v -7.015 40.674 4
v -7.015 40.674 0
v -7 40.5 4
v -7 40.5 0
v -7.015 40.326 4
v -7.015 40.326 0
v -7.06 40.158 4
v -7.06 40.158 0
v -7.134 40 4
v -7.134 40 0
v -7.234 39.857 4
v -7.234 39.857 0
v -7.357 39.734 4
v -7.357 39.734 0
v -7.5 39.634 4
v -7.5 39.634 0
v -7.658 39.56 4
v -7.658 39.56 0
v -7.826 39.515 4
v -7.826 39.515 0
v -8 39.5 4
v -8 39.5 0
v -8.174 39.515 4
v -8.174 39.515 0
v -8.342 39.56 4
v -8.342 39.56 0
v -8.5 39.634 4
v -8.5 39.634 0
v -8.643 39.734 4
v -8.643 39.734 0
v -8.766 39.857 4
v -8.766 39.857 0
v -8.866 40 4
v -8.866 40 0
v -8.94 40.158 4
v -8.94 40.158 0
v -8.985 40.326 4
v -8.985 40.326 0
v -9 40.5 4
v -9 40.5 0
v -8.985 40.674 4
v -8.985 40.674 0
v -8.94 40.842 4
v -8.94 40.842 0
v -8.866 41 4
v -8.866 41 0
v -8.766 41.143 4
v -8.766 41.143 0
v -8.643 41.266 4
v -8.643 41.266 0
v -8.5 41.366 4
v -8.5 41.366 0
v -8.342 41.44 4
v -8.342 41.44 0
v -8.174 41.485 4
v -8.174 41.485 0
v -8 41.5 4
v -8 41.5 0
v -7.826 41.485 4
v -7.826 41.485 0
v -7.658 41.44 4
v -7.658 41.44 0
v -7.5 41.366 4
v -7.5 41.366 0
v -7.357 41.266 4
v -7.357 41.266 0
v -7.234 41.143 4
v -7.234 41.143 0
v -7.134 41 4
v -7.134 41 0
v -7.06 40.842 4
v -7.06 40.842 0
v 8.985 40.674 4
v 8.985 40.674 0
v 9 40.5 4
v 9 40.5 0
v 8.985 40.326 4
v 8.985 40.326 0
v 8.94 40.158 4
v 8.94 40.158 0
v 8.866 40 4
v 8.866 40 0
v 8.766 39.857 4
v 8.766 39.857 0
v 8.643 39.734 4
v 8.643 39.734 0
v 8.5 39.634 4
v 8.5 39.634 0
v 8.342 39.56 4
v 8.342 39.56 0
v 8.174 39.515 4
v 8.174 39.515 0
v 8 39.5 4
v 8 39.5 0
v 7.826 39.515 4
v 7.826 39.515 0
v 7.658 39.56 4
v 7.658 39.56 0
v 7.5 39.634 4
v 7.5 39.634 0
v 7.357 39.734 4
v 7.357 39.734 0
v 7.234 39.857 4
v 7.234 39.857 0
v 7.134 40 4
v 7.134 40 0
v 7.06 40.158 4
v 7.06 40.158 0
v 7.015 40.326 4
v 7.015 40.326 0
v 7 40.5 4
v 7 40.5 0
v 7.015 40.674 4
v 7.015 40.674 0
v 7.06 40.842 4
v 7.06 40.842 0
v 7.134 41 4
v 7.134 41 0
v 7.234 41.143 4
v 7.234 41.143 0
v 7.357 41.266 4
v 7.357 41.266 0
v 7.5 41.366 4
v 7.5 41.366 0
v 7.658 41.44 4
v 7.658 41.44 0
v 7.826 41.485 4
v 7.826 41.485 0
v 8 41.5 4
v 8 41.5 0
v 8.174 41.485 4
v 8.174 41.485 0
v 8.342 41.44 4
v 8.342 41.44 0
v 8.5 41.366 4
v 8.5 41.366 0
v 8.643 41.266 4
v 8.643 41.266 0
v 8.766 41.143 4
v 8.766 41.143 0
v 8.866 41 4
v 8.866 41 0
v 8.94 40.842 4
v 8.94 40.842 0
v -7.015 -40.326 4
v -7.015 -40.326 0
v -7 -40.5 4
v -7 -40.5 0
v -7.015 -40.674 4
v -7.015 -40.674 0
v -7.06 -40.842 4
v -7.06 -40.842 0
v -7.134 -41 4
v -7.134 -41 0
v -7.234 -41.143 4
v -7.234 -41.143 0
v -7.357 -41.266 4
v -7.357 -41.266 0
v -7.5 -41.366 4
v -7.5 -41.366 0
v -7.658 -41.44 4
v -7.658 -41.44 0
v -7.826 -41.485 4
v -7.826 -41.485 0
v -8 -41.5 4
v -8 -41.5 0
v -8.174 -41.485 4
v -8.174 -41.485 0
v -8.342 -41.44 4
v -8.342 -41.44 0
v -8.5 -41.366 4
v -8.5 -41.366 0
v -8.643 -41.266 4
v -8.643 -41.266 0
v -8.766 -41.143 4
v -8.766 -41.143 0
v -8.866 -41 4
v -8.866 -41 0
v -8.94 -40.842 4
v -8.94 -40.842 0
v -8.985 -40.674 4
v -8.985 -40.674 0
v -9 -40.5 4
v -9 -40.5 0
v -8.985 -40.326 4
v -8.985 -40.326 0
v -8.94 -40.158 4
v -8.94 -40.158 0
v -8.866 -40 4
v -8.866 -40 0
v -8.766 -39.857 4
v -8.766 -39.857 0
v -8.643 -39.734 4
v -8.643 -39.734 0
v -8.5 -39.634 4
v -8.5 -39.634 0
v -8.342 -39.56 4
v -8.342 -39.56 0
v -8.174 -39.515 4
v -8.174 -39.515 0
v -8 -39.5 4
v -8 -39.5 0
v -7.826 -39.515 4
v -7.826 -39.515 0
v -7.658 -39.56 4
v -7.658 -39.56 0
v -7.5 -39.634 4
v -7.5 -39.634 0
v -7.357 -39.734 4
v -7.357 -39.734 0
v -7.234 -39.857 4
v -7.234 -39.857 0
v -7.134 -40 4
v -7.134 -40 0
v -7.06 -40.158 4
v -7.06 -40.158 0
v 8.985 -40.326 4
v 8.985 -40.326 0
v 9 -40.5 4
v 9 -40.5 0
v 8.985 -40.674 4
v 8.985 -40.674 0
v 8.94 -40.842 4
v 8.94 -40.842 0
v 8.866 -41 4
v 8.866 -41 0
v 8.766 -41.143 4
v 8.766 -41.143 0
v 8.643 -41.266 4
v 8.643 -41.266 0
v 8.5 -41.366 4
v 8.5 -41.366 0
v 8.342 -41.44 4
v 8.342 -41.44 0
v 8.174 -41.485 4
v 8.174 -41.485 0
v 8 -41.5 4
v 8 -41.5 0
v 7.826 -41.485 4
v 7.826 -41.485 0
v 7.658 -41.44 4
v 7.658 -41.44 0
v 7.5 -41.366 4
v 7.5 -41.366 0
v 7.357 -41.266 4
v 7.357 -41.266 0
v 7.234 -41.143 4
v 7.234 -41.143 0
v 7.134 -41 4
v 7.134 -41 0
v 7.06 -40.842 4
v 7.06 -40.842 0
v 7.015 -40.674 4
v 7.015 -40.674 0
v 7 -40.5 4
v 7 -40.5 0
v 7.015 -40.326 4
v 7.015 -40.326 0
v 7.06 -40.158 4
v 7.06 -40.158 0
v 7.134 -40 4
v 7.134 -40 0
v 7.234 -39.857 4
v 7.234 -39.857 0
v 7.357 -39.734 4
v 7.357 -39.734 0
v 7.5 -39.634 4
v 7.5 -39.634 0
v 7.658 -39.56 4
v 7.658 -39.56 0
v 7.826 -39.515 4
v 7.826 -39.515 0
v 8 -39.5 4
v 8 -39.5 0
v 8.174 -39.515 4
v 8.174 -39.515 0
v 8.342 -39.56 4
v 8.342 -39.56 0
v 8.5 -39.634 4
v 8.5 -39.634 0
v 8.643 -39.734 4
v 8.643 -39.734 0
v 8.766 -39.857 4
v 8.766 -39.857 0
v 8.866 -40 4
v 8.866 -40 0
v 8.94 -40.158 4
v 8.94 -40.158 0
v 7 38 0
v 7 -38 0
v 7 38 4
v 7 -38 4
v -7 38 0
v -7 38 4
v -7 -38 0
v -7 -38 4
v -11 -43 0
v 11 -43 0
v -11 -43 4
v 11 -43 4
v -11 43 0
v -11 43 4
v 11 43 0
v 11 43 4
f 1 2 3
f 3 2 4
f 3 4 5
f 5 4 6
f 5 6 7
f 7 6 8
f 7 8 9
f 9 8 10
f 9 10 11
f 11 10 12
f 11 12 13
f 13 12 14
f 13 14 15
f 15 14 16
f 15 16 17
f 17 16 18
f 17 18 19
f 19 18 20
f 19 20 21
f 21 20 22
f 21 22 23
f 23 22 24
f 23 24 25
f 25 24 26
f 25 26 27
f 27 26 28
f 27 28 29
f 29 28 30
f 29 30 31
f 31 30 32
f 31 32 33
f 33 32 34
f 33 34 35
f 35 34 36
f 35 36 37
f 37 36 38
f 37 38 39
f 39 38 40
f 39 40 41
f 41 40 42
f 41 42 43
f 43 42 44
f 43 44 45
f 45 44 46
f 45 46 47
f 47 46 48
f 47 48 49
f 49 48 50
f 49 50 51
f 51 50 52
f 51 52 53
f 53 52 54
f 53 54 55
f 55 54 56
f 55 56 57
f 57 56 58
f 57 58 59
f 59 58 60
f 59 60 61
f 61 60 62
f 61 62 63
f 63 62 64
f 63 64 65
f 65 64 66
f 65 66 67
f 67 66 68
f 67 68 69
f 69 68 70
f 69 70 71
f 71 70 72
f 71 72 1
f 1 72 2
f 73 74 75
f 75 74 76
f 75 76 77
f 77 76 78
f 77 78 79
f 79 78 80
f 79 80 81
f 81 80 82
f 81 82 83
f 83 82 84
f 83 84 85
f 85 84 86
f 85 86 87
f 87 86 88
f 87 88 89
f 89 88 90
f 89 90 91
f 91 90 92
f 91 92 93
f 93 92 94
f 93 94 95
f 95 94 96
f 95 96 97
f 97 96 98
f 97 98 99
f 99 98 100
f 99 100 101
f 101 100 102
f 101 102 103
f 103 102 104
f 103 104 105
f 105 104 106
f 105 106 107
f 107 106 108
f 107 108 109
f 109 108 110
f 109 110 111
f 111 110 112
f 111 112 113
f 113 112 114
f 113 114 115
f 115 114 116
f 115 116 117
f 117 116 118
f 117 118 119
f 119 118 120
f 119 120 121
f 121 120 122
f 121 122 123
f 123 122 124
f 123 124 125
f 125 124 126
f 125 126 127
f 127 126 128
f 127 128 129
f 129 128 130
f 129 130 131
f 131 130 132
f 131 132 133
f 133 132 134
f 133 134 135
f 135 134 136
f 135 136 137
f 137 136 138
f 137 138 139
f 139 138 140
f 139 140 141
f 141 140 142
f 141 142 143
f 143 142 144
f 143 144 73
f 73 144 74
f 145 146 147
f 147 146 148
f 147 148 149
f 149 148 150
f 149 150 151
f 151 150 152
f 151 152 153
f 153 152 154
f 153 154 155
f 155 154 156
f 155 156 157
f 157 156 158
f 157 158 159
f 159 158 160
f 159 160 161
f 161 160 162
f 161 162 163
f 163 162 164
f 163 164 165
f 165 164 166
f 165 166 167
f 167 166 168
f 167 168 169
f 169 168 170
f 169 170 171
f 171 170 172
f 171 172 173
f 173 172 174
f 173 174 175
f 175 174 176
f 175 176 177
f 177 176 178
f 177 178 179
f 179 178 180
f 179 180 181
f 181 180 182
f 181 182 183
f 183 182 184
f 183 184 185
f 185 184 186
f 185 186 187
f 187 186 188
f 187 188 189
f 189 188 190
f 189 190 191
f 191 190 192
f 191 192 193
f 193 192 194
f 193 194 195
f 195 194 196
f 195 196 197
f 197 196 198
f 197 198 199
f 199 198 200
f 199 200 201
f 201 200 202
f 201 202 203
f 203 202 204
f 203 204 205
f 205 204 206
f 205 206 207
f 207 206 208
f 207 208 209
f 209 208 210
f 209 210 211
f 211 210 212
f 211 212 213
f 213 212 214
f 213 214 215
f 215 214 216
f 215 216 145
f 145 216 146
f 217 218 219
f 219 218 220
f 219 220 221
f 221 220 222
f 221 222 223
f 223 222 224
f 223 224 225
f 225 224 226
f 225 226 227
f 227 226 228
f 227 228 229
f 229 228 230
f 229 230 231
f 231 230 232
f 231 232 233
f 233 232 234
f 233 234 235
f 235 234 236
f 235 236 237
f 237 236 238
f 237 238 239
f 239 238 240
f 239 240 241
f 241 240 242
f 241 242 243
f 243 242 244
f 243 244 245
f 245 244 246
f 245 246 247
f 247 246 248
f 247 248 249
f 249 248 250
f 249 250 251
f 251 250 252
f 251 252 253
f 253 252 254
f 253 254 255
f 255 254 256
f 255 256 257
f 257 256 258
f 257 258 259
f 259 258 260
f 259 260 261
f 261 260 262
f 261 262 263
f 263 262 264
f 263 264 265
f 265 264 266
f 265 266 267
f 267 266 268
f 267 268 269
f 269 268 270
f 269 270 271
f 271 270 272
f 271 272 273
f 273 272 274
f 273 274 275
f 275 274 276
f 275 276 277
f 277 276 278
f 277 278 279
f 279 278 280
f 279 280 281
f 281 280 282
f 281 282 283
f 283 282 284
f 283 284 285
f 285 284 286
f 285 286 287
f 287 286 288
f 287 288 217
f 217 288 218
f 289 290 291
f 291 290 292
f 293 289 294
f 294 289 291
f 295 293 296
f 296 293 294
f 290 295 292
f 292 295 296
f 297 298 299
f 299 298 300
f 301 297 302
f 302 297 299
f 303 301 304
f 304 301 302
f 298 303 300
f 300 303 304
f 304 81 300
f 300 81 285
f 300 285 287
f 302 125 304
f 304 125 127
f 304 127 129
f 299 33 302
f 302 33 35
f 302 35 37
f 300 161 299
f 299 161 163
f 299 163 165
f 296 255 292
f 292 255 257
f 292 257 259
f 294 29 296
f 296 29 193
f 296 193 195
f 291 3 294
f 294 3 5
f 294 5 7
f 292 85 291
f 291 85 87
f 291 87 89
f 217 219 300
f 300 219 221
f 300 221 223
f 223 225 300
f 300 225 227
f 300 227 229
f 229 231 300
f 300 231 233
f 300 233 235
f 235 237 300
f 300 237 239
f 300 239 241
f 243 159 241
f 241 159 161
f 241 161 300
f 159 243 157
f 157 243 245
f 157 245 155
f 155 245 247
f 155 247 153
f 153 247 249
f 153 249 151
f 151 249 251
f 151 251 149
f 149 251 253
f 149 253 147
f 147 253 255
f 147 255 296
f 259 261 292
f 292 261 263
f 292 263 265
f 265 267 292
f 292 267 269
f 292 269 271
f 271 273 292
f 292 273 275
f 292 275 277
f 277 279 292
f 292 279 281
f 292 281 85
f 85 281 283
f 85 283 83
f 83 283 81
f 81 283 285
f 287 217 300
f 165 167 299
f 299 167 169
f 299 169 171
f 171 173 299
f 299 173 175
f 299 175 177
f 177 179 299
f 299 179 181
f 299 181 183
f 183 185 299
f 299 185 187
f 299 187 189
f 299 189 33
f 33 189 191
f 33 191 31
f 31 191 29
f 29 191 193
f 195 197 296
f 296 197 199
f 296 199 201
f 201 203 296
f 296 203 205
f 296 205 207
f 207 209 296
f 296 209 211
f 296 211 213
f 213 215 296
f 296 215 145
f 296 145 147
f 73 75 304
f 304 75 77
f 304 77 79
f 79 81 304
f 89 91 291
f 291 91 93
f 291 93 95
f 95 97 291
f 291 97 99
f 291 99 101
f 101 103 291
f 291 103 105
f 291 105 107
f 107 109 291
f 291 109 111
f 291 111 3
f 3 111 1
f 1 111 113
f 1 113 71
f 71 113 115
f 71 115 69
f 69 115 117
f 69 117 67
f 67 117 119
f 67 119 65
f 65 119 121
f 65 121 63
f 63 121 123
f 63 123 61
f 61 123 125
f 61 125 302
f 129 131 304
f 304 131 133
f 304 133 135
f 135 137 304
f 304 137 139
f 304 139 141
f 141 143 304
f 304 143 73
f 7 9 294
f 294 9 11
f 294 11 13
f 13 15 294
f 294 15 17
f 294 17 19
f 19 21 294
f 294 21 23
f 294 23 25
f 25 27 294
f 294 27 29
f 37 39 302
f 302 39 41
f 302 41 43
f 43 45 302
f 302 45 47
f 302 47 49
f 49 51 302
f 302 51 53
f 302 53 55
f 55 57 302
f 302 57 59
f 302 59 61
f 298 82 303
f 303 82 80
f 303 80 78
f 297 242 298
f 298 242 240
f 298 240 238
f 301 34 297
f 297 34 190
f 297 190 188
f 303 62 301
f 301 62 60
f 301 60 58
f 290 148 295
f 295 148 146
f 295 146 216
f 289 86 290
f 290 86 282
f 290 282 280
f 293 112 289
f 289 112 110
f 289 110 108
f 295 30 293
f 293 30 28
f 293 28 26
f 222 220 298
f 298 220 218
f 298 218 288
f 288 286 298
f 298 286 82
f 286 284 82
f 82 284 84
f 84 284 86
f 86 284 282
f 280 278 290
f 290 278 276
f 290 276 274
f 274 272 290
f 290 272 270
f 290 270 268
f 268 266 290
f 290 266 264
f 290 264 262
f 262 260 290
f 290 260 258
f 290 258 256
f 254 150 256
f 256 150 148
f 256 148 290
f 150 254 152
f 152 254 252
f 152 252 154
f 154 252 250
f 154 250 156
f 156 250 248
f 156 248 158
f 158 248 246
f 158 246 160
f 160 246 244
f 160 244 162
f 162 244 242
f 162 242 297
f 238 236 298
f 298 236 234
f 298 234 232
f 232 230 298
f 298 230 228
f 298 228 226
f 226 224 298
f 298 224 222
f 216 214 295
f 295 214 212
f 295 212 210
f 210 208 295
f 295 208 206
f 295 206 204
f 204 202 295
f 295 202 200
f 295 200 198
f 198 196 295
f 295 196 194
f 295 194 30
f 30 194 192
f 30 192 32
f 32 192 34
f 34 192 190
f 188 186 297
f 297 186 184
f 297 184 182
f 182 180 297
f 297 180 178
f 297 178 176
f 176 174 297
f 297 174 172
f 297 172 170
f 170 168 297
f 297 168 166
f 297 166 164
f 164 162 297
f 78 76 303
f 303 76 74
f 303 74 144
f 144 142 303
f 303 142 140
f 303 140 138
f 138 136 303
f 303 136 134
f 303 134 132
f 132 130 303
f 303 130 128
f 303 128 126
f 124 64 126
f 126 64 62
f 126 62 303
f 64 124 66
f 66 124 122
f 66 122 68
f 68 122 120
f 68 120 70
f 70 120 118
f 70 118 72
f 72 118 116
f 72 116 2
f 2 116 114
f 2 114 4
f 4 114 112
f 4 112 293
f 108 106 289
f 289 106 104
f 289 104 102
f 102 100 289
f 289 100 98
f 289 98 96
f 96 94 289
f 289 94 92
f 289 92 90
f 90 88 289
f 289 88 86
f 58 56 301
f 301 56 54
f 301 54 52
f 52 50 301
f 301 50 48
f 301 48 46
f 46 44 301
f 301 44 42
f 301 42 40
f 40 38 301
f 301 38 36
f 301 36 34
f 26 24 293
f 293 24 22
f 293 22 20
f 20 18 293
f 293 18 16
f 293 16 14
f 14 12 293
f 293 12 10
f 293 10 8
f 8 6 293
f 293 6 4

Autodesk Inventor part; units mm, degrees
ref_plane "YZ Plane" through (0, 0, 0) normal (1, 0, 0) x (0, 1, 0)
ref_plane "XZ Plane" through (0, 0, 0) normal (0, 1, 0) x (-1, 0, 0)
ref_plane "XY Plane" through (0, 0, 0) normal (0, 0, 1) x (1, 0, 0)
sketch "Sketch1" plane through (0, 0, 0) normal (0, 0, 1) x (1, 0, 0)
  line L0 (-11, 43) -> (11, 43)
  line L1 (11, 43) -> (11, -43)
  line L2 (11, -43) -> (-11, -43)
  line L3 (-11, -43) -> (-11, 43)
  line L4 (-11, 43) -> (11, -43) construction
  line L5 (11, 43) -> (-11, -43) construction
  circle A0 centre (-8, 40.5) radius 1
  circle A1 centre (8, 40.5) radius 1
  circle A2 centre (-8, -40.5) radius 1
  circle A3 centre (8, -40.5) radius 1
  line L6 (7, 38) -> (-7, 38)
  line L7 (-7, 38) -> (-7, -38)
  line L8 (-7, -38) -> (7, -38)
  line L9 (7, -38) -> (7, 38)
  line L10 (7, 38) -> (-7, -38) construction
  line L11 (-7, 38) -> (7, -38) construction
  point P0 (0, 0)
  dimension "d0" = 22
  dimension "d1" = 86
  dimension "d2" = 2
  dimension "d3" = 2
  dimension "d4" = 2
  dimension "d5" = 2
  dimension "d6" = 3
  dimension "d7" = 2.5
  dimension "d8" = 3
  dimension "d9" = 2.5
  dimension "d10" = 2.5
  dimension "d11" = 3
  dimension "d12" = 3
  dimension "d13" = 2.5
  dimension "d14" = 14
  dimension "d15" = 76
extrude "Extrusion1" add sketch "Sketch1" along normal blind 4
properties part number "PartC_3D"
